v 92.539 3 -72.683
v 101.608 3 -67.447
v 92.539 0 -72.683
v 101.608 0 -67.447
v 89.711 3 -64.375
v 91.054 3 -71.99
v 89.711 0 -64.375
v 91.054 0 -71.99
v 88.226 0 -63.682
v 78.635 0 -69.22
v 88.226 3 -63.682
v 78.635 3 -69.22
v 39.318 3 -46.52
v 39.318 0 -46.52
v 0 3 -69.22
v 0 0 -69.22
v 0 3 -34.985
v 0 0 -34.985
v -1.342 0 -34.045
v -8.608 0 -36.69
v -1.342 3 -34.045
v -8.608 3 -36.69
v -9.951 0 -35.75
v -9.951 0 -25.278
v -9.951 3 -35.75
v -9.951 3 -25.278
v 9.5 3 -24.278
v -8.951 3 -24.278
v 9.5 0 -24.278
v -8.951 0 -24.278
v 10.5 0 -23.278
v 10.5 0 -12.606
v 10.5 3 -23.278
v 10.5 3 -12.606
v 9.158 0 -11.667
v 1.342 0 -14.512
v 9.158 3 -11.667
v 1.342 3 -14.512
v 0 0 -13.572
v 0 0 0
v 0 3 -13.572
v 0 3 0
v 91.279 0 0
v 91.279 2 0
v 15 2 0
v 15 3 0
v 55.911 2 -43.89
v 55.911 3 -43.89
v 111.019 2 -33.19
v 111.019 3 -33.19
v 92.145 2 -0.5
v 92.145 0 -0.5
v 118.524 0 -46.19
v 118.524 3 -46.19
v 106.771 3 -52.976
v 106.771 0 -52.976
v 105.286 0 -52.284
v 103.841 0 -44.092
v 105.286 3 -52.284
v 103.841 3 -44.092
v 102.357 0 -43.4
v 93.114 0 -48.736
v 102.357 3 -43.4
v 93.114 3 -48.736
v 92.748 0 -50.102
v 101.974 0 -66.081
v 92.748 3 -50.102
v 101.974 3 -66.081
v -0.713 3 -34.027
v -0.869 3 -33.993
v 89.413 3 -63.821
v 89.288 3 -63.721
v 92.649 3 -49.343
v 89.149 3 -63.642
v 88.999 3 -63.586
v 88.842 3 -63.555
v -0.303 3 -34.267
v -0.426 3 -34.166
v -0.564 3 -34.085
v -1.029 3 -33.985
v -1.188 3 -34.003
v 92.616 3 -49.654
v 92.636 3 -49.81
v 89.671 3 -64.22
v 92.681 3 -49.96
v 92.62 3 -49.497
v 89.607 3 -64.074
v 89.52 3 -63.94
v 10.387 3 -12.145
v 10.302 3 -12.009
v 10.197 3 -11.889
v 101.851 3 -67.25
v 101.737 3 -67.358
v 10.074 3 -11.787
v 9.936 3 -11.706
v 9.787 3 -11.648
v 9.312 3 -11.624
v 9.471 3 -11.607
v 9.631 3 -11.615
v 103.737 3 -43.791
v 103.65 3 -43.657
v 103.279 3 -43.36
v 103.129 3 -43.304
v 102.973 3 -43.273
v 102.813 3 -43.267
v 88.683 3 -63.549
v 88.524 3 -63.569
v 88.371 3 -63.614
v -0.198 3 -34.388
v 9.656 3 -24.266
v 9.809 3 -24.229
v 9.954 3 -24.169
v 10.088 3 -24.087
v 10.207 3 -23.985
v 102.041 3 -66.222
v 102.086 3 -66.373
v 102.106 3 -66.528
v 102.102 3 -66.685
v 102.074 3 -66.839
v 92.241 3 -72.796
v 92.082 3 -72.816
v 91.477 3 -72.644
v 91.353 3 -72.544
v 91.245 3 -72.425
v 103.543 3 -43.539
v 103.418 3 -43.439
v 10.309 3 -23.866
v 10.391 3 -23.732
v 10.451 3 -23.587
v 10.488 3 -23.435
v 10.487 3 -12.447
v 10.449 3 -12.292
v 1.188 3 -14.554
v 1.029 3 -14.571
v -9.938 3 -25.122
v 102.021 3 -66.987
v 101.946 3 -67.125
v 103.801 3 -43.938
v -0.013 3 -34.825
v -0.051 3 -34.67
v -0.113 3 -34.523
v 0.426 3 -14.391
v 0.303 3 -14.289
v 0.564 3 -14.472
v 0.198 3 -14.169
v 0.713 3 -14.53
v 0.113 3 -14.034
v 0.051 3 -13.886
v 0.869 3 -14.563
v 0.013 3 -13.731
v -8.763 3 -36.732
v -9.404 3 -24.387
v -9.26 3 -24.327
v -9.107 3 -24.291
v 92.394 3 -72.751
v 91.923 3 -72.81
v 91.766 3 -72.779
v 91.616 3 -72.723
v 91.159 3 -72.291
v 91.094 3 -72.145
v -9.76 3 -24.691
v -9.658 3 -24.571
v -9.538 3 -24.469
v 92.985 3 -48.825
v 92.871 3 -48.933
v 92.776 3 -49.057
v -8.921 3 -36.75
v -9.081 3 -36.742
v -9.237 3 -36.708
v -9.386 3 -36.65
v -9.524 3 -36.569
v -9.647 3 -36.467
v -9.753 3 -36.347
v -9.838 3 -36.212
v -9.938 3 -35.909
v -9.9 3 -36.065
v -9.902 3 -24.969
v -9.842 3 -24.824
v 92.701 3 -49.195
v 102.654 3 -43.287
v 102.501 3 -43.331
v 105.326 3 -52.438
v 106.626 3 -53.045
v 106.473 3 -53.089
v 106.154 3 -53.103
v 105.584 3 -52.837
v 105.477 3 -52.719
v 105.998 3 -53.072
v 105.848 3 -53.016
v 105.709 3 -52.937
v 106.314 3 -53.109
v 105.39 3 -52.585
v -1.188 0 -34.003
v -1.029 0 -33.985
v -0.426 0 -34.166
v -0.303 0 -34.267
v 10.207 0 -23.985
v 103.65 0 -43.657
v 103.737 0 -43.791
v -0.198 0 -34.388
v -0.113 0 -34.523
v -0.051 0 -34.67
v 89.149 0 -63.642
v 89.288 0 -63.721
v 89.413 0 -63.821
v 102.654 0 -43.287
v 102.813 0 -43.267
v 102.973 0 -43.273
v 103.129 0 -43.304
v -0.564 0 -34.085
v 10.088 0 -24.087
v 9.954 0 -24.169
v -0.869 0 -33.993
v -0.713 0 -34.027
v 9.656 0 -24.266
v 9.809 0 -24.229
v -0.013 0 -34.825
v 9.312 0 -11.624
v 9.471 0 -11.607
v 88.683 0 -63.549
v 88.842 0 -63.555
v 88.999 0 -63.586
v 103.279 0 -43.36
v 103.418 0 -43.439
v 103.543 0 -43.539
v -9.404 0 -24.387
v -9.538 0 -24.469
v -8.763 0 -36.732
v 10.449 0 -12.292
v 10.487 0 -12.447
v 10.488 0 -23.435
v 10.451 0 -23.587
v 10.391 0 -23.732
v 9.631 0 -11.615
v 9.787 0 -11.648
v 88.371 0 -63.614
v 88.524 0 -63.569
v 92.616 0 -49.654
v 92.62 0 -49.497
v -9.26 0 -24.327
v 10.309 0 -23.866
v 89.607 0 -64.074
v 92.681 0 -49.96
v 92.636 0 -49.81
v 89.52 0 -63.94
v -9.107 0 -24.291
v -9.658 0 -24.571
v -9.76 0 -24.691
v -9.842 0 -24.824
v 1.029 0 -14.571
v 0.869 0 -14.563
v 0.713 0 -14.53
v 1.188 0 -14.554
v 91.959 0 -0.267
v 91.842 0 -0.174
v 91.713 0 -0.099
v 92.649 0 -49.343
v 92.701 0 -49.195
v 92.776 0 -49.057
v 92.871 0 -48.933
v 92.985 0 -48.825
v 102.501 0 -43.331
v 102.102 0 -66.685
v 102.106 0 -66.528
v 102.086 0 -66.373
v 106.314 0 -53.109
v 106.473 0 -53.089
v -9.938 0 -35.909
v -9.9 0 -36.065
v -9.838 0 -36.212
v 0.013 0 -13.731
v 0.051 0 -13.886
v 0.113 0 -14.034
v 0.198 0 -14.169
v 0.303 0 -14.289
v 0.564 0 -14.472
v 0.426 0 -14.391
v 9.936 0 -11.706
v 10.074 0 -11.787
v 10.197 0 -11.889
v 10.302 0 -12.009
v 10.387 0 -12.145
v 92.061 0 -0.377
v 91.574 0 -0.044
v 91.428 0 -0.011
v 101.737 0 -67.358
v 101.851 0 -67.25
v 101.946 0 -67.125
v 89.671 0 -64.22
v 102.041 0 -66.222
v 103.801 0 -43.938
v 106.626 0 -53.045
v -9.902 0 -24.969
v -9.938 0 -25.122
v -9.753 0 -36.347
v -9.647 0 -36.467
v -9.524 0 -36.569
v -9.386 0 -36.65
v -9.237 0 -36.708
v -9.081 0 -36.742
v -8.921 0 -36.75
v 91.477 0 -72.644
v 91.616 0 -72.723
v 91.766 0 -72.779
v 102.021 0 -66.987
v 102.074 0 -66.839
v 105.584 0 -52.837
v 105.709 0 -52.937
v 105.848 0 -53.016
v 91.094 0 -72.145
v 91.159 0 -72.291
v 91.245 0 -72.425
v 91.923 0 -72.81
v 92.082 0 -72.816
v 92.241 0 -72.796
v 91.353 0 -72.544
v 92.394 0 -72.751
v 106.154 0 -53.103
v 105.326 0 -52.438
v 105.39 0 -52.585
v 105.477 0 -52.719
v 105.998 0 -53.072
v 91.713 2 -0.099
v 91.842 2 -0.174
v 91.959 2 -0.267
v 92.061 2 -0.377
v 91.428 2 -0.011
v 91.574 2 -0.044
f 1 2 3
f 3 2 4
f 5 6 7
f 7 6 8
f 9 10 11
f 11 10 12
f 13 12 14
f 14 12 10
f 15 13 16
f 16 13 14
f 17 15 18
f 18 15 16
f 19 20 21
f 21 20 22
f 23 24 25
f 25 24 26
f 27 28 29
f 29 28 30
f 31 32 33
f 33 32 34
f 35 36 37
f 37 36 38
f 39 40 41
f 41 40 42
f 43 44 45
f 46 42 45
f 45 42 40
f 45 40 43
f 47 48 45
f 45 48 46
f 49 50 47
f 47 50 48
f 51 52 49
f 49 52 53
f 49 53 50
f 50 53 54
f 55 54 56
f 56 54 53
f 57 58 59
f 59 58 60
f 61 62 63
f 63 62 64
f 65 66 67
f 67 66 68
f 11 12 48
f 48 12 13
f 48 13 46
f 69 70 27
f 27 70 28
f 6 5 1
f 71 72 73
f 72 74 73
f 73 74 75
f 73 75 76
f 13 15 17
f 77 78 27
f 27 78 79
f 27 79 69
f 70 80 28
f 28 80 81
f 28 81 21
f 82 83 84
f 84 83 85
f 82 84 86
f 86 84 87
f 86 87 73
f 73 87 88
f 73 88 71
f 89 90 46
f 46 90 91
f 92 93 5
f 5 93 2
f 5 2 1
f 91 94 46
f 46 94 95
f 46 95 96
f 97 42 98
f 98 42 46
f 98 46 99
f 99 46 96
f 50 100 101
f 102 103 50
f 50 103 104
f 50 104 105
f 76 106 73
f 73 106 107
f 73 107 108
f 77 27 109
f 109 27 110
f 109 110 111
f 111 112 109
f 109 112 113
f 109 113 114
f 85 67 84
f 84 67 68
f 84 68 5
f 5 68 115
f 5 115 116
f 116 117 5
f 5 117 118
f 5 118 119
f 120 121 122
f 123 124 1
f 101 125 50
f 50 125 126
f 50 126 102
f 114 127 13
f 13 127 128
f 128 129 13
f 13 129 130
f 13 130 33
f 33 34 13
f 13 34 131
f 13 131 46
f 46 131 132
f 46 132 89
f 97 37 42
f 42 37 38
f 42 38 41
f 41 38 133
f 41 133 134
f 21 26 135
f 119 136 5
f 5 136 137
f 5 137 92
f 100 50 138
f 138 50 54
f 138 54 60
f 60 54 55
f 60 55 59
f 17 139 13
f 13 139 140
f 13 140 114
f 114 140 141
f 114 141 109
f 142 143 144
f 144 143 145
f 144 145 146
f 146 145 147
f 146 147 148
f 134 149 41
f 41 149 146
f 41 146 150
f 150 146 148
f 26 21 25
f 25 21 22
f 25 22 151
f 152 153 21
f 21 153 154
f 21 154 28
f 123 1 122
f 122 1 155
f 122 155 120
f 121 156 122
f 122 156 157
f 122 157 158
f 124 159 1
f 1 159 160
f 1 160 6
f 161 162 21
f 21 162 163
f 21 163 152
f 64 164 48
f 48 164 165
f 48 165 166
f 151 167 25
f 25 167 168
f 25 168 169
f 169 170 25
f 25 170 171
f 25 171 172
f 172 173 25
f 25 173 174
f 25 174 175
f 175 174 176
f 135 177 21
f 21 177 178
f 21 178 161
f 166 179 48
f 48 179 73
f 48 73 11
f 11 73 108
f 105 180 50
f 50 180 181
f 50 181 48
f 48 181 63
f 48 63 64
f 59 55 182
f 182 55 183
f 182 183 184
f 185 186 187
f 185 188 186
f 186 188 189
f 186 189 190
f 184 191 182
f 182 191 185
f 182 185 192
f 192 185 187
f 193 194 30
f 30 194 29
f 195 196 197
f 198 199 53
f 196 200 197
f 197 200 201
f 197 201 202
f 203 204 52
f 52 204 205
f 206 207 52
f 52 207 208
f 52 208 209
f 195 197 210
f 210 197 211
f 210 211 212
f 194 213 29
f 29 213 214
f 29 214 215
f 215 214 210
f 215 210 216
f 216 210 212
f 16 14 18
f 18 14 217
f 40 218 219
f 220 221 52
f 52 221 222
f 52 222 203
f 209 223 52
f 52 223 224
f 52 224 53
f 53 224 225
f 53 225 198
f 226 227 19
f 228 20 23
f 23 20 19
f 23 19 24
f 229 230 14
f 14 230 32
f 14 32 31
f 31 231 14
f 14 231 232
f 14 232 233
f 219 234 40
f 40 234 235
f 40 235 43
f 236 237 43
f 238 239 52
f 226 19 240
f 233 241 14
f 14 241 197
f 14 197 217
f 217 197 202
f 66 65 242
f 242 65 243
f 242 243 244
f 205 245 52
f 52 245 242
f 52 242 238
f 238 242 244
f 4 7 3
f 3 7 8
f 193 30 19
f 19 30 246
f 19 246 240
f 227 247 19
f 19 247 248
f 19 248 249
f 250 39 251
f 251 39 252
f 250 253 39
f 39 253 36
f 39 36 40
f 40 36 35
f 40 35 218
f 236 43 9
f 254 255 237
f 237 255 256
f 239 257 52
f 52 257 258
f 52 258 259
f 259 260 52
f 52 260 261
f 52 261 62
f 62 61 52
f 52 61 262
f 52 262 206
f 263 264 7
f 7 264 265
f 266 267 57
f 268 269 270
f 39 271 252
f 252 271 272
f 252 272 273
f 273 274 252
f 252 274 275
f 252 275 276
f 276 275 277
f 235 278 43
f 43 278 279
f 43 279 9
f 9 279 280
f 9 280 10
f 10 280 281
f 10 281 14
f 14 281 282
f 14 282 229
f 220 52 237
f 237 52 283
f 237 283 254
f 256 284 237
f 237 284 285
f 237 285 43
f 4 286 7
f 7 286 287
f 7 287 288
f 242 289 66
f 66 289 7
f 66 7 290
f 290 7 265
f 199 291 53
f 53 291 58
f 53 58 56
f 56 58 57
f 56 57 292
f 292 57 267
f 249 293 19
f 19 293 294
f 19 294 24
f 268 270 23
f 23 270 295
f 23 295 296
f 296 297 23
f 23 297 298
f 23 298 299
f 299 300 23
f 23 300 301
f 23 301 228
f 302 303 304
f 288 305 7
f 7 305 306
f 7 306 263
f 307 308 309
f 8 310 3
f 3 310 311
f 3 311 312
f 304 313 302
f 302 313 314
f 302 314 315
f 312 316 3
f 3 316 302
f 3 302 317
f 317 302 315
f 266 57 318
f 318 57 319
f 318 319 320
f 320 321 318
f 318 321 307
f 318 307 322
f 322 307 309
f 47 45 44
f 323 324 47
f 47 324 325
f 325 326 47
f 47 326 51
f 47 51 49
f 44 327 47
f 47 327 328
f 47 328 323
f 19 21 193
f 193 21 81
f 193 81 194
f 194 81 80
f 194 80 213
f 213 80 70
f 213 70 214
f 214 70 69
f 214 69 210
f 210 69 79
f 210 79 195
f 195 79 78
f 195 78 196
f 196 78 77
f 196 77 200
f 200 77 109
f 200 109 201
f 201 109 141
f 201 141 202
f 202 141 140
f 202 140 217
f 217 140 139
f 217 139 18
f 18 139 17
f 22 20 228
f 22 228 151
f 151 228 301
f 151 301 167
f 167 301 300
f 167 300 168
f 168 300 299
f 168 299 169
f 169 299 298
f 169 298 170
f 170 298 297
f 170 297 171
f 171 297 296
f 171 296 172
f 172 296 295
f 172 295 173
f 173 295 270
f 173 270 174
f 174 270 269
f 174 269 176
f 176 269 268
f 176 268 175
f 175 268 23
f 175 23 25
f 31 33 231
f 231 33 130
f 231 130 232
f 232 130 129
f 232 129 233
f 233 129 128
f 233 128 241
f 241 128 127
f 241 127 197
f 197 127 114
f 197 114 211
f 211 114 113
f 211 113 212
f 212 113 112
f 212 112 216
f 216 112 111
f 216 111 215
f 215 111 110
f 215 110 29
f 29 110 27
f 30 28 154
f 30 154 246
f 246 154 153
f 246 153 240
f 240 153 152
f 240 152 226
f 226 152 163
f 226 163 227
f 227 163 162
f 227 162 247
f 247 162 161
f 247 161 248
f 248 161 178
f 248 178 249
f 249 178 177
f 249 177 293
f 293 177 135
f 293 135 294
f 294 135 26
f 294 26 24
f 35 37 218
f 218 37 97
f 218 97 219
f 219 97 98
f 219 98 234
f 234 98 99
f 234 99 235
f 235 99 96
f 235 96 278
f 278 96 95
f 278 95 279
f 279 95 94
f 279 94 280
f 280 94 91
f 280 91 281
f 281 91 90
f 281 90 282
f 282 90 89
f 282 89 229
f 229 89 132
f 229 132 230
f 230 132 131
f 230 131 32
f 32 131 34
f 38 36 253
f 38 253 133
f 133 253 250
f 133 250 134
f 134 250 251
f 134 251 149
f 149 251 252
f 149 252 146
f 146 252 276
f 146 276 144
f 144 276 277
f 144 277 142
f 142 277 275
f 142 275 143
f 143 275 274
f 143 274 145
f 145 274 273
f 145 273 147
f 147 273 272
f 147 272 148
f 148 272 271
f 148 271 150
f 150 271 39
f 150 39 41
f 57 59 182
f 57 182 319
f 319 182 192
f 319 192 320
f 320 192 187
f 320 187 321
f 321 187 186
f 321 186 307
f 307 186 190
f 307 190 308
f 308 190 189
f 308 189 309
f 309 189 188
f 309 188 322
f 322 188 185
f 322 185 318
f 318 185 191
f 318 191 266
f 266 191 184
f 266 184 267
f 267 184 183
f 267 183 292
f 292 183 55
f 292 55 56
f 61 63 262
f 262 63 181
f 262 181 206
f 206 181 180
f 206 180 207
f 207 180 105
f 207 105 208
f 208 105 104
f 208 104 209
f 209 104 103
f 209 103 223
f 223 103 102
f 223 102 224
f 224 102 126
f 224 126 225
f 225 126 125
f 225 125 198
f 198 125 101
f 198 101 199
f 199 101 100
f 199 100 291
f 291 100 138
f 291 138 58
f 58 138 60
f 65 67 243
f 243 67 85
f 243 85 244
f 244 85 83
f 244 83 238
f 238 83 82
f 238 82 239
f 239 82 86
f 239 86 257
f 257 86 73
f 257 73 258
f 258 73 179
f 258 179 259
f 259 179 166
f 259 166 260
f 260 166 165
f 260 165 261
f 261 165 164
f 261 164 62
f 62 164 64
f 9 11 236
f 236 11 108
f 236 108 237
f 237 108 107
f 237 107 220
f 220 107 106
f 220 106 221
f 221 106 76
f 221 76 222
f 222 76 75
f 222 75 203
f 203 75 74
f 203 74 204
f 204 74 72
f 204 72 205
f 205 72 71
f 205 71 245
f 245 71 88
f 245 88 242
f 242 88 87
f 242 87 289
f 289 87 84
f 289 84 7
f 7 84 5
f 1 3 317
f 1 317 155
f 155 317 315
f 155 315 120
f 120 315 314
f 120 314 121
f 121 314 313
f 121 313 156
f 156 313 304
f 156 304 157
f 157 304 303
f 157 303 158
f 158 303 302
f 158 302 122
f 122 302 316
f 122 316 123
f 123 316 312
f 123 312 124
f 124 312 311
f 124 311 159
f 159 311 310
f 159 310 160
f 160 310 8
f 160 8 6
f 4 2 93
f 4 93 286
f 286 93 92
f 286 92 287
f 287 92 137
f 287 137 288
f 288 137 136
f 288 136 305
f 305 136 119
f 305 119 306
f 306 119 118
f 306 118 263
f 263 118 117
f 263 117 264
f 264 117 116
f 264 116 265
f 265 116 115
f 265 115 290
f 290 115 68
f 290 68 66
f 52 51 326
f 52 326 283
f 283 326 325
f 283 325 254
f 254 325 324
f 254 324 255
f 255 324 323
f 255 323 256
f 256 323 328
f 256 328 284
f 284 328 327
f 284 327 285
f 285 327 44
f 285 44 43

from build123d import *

# Parameters (mm, degrees)
P_IDAT_VYSUNUT_M1_DEPTH = 3
P_IDAT_VYSUNUT_M2_DEPTH = 2
ZAOBLIT1_R              = 1
ZAOBLIT2_R              = 1


with BuildPart() as part:
    # Skica1 → P_idat vysunut_m1 (new body)
    with BuildSketch(Plane(origin=(0, 0, 0), x_dir=(1, 0, 0), z_dir=(0, 1, 0))):
        Polygon((118.524103266, 46.190077074), (105.53372221, 53.690077074), (103.593400635, 42.685966604), (92.248467845, 49.235966604), (102.473720104, 66.946623035), (91.301992395, 73.396623035), (89.463213481, 62.968389614), (78.635106664, 69.22), (39.317553332, 46.52), (0, 69.22), (0, 33.55662508), (-9.950504516, 37.17831254), (-9.950504516, 24.27831254), (10.5, 24.27831254), (10.5, 11.17831254), (0, 15), (0, 0), (15, 0), (55.910618513, 43.889876884), (111.018549767, 33.190077074), align=None)
    extrude(amount=P_IDAT_VYSUNUT_M1_DEPTH)

    # Skica1_3 → P_idat vysunut_m2 (add)
    with BuildSketch(Plane(origin=(0, 0, 0), x_dir=(1, 0, 0), z_dir=(0, 1, 0))):
        Polygon((91.856249834, 0), (111.018549767, 33.190077074), (55.910618513, 43.889876884), (15, 0), align=None)
    extrude(amount=P_IDAT_VYSUNUT_M2_DEPTH)

    # Zaoblit1
    zaoblit1_edges = [part.edges().sort_by_distance(p)[0] for p in [
        (102.473720104, 1.5, -66.946623035),
        (92.248467845, 1.5, -49.235966604),
        (103.593400635, 1.5, -42.685966604),
        (105.53372221, 1.5, -53.690077074),
        (0, 1.5, -15),
        (10.5, 1.5, -11.17831254),
        (10.5, 1.5, -24.27831254),
        (-9.950504516, 1.5, -24.27831254),
        (-9.950504516, 1.5, -37.17831254),
        (0, 1.5, -33.55662508),
        (89.463213481, 1.5, -62.968389614),
        (91.301992395, 1.5, -73.396623035),
    ]]
    fillet(zaoblit1_edges, radius=ZAOBLIT1_R)

    # Zaoblit2
    zaoblit2_edges = [part.edges().sort_by_distance(p)[0] for p in [
        (91.856249834, 1, 0),
    ]]
    fillet(zaoblit2_edges, radius=ZAOBLIT2_R)


solid = part.part
